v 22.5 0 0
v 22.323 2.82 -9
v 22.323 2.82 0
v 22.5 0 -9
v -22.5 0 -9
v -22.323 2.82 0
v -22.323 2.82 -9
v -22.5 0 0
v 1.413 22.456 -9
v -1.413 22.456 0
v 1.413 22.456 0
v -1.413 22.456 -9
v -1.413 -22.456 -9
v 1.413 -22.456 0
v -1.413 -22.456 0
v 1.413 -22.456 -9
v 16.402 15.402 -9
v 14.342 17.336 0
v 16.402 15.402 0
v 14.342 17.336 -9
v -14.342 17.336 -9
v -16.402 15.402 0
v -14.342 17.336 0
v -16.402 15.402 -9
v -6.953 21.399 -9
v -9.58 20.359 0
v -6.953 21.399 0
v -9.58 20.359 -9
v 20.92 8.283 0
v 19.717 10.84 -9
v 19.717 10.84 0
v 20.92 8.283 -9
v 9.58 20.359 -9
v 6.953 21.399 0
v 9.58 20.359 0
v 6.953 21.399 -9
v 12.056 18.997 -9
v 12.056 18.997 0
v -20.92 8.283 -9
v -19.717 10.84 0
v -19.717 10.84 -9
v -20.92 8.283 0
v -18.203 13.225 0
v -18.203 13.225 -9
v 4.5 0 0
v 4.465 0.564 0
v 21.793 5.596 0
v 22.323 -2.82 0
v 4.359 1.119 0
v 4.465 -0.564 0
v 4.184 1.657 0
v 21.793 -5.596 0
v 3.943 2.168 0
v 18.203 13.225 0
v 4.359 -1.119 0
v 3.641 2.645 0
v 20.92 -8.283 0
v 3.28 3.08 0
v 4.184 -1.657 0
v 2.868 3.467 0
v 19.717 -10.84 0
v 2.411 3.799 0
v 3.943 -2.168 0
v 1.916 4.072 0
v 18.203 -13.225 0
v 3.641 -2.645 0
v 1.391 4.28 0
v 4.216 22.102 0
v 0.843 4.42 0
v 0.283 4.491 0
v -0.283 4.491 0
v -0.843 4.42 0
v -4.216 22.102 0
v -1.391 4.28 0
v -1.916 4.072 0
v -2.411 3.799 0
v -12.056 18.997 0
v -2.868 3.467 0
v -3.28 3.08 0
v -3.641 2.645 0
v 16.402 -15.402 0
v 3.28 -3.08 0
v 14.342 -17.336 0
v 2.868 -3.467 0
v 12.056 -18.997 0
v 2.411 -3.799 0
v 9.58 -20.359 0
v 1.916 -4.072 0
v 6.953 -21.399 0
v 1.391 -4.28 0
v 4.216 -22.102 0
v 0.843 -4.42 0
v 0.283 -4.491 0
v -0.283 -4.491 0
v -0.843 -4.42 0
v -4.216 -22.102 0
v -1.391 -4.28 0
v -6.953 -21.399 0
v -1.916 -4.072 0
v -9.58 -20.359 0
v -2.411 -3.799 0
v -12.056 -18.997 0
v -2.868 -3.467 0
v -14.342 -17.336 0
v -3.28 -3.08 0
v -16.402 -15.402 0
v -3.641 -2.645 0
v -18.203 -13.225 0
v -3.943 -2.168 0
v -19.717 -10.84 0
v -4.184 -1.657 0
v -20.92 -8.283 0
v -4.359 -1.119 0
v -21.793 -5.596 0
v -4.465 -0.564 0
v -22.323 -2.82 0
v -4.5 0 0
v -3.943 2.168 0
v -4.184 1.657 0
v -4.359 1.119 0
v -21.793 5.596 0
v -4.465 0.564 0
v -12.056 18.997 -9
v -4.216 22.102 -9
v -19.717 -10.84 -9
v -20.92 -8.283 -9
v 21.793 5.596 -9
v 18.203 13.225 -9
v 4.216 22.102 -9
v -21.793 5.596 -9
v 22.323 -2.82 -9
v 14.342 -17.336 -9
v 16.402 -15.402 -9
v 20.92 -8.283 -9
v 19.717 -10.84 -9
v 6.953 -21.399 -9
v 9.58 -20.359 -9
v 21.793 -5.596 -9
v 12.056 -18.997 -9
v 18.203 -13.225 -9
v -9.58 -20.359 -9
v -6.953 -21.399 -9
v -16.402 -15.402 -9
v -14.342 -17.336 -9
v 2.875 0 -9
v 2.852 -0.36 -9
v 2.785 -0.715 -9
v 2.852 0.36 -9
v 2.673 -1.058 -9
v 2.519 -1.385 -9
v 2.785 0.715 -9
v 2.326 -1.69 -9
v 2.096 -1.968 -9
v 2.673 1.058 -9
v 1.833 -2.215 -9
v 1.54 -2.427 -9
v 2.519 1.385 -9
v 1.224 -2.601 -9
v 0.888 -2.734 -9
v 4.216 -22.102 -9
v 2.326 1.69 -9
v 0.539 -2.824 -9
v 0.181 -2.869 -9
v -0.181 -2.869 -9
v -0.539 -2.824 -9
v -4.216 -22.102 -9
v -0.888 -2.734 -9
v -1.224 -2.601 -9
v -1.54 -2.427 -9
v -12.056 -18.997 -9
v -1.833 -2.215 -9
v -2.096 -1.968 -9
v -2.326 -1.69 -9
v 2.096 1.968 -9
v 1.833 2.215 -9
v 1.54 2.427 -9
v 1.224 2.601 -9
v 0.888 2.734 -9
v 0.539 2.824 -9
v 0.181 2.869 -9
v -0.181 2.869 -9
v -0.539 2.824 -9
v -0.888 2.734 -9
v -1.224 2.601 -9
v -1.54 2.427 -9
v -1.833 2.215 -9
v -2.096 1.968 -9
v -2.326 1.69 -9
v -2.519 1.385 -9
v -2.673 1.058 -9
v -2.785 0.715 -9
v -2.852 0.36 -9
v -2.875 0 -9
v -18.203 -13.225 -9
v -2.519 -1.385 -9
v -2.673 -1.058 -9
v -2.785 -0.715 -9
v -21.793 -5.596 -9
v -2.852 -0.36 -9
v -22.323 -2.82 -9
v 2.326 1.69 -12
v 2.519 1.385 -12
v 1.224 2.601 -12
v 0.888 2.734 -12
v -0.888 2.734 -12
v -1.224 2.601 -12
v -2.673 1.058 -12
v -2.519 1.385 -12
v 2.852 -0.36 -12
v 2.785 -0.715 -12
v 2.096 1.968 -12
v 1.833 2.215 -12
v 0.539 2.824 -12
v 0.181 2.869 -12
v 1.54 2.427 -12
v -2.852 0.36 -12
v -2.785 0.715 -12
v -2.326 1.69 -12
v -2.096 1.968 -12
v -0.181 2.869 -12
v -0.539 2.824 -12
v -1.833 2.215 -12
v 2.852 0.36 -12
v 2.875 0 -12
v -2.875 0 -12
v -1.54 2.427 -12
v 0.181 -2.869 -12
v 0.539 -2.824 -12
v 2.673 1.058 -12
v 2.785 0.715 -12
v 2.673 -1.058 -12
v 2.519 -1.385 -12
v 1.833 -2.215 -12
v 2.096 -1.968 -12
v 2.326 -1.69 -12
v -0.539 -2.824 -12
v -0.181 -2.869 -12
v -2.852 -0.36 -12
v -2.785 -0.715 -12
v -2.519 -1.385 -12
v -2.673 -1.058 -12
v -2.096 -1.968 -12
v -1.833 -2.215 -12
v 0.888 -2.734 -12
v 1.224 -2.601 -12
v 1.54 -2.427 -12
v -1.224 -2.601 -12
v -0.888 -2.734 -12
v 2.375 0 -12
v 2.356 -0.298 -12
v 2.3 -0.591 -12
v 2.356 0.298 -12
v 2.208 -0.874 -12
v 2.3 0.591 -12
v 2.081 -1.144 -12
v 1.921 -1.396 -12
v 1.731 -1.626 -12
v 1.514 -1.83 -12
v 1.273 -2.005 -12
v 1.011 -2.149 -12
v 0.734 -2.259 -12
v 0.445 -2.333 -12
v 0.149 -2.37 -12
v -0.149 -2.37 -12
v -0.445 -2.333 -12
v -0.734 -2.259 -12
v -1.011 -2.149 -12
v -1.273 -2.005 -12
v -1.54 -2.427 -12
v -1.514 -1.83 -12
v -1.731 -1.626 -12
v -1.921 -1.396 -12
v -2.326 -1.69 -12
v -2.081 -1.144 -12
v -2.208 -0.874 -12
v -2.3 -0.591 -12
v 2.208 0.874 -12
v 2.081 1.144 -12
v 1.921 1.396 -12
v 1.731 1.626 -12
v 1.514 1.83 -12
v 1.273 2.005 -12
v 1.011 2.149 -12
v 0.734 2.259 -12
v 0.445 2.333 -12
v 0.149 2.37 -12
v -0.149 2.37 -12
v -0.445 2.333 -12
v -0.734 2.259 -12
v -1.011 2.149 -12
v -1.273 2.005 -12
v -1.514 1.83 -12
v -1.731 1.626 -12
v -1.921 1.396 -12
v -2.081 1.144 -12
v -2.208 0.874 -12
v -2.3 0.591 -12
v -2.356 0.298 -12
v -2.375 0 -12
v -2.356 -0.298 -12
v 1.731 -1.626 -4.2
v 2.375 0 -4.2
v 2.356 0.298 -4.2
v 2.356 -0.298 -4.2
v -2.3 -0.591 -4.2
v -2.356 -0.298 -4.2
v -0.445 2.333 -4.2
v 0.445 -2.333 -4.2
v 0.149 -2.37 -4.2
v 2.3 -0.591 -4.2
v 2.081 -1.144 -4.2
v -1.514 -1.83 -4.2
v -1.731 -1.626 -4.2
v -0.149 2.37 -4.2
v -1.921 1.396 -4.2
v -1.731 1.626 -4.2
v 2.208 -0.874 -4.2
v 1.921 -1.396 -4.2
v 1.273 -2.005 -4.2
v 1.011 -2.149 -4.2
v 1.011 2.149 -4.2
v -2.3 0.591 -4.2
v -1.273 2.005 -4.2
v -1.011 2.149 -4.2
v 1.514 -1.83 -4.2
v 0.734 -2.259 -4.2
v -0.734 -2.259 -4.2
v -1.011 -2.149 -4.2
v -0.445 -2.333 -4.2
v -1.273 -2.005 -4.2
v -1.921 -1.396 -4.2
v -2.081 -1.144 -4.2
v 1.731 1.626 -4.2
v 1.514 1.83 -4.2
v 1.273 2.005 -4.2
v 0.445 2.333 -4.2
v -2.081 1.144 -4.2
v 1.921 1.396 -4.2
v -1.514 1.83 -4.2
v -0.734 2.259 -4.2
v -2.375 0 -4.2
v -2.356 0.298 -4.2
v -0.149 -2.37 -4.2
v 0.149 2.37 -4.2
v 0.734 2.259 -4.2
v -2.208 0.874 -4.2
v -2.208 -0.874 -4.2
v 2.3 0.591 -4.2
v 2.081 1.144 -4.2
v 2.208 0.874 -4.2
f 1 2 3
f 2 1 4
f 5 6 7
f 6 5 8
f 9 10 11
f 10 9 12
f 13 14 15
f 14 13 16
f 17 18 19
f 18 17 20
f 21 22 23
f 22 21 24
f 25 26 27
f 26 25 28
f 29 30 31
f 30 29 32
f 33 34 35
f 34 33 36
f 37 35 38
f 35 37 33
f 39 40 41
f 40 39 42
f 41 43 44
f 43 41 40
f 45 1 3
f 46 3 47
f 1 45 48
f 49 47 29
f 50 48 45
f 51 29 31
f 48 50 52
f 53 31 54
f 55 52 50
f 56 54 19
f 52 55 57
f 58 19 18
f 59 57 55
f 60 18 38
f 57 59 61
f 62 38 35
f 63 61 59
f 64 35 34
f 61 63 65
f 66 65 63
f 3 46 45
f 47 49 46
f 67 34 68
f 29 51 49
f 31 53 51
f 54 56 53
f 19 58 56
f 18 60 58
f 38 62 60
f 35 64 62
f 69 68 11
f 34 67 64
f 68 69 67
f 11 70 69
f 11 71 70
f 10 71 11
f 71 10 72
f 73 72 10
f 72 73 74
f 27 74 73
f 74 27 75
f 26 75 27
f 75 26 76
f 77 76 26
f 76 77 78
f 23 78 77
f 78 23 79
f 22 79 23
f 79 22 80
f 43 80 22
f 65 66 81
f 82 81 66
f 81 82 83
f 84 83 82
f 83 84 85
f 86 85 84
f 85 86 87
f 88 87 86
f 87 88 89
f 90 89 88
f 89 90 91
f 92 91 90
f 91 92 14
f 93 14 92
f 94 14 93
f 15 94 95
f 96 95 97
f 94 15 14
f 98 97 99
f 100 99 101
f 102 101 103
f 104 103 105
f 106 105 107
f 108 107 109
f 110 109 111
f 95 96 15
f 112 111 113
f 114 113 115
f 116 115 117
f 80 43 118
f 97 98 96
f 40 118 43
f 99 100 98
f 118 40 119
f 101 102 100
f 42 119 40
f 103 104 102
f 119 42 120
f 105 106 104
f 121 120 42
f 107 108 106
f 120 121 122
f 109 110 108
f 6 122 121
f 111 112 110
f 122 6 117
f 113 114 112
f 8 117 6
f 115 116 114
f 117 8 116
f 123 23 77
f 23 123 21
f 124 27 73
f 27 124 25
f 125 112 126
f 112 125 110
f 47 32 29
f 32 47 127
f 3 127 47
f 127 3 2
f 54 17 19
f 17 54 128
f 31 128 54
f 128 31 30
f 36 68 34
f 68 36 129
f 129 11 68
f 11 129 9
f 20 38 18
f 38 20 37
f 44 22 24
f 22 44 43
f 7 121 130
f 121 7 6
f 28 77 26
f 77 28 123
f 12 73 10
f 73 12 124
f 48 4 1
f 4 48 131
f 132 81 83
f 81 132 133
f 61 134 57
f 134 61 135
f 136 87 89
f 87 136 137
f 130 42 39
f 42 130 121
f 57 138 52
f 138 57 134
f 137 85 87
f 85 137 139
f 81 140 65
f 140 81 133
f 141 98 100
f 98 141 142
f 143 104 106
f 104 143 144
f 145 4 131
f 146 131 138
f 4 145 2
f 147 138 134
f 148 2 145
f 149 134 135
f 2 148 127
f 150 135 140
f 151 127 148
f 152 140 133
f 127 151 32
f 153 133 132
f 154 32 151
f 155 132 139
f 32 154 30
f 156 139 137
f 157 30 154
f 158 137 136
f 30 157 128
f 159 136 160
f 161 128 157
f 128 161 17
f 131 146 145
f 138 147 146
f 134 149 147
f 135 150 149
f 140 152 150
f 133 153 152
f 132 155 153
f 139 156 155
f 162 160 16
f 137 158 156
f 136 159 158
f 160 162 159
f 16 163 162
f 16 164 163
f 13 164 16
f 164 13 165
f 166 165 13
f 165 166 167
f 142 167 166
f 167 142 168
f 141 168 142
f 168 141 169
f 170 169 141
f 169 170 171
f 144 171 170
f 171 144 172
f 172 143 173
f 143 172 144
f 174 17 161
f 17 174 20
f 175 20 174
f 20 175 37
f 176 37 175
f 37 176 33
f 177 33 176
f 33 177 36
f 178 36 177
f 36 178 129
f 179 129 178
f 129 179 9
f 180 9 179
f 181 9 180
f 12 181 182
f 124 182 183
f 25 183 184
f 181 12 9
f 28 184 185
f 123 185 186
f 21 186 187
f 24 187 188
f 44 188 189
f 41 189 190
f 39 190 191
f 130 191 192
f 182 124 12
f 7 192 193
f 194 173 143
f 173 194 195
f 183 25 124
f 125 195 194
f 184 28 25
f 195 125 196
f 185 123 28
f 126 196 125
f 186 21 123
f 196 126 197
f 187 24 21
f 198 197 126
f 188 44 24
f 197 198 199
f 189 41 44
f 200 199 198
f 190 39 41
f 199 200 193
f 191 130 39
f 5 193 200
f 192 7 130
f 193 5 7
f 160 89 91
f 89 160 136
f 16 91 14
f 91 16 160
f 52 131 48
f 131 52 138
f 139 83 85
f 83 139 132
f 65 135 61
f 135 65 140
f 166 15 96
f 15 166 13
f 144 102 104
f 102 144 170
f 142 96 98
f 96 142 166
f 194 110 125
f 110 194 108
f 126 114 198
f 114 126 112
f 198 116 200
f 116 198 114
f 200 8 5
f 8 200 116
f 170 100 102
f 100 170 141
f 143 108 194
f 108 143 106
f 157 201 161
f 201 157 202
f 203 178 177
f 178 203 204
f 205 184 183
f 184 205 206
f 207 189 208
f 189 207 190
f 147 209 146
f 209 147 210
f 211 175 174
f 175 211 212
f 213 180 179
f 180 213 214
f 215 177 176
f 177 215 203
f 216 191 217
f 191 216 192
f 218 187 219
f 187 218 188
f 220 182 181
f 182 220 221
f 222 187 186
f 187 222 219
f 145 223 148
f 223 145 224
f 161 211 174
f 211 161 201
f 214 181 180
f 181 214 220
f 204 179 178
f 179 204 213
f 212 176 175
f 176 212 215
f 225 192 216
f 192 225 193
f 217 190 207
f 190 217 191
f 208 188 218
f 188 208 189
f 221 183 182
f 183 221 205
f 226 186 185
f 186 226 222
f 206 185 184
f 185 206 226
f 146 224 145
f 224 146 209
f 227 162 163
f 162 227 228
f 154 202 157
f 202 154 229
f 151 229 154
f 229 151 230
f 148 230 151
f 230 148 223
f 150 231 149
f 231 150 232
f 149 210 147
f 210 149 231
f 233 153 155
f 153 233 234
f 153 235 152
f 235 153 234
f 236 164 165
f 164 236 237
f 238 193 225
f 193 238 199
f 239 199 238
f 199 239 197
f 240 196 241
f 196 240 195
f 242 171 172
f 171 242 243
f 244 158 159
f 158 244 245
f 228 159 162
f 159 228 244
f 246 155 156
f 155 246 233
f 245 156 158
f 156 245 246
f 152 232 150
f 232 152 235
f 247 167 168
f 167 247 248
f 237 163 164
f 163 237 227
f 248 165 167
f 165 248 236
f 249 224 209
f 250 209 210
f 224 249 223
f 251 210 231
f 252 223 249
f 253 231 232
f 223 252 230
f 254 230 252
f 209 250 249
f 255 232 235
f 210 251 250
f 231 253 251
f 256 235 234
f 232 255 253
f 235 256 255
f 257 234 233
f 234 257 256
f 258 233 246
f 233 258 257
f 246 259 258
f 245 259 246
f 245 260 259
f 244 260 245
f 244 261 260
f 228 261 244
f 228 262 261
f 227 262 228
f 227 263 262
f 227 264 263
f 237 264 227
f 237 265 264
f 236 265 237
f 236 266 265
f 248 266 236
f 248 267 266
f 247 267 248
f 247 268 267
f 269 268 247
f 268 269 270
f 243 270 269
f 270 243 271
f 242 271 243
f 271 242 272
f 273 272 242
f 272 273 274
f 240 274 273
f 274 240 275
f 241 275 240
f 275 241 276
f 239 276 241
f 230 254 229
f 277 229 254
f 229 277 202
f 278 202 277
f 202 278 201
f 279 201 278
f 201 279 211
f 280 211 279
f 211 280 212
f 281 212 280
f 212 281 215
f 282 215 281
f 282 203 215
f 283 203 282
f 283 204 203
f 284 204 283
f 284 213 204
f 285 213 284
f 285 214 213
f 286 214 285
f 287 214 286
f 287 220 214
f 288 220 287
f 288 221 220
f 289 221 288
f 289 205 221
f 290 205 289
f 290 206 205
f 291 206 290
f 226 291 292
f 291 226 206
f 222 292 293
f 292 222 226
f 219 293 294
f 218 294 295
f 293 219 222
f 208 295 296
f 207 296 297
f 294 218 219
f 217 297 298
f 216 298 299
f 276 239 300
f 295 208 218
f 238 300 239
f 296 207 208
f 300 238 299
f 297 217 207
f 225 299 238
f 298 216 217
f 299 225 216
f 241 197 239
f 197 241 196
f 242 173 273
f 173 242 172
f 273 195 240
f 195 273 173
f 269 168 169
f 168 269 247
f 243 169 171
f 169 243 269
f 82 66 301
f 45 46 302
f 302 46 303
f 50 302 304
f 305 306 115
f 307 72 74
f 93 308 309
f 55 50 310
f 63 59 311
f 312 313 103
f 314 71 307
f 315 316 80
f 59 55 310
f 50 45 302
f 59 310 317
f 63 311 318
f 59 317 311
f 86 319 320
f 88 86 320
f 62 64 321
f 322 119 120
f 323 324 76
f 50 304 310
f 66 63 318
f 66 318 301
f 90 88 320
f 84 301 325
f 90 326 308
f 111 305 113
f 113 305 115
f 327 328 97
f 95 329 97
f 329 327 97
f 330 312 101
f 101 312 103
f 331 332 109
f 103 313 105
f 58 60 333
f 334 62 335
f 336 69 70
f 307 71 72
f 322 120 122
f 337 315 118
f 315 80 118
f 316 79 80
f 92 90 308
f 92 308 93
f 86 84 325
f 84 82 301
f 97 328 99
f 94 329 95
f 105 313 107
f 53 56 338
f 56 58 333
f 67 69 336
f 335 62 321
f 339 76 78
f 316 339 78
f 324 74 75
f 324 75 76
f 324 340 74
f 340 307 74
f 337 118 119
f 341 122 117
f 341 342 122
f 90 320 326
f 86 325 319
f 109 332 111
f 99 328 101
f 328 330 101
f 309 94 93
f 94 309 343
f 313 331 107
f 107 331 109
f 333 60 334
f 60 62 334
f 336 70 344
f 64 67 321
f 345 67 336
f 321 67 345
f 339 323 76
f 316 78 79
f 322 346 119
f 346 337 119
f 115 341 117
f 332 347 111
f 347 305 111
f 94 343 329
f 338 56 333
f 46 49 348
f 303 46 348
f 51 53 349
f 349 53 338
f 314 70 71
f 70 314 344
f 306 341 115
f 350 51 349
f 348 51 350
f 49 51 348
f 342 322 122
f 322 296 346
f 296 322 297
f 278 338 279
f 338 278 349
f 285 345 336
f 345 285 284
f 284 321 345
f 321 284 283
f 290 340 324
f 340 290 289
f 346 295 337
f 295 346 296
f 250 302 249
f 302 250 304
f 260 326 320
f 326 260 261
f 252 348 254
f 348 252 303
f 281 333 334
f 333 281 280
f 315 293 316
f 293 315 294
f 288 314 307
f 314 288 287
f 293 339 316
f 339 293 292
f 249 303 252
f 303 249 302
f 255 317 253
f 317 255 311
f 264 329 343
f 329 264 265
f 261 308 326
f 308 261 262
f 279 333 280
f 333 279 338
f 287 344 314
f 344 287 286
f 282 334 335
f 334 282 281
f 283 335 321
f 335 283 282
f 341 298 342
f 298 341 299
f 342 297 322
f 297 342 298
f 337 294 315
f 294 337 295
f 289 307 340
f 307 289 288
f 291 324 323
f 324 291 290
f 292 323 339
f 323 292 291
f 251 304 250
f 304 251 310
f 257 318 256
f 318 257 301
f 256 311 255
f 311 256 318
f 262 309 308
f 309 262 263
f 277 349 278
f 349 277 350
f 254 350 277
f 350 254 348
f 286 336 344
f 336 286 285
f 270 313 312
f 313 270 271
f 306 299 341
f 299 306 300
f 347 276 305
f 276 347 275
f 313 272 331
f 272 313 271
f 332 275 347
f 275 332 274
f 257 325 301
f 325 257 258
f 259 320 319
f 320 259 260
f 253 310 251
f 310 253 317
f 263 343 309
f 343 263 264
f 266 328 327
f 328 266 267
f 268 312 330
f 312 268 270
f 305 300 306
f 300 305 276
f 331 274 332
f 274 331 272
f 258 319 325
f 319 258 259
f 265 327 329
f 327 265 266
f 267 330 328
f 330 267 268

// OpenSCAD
$fn = 50;


difference() {
	union() {
		translate(v = [0, 0, -9.0000000000]) {
			cylinder(h = 9, r = 22.5000000000);
		}
		translate(v = [0, 0, -12.0000000000]) {
			cylinder(h = 12, r = 2.8750000000);
		}
	}
	union() {
		translate(v = [0, 0, 0]) {
			rotate(a = [0, 0, 0]) {
				difference() {
					union() {
						translate(v = [0, 0, -12.0000000000]) {
							cylinder(h = 12, r = 2.2500000000);
						}
						translate(v = [0, 0, -4.2000000000]) {
							cylinder(h = 4.2000000000, r1 = 2.3750000000, r2 = 4.5000000000);
						}
						translate(v = [0, 0, -12.0000000000]) {
							cylinder(h = 12, r = 2.3750000000);
						}
						translate(v = [0, 0, -12.0000000000]) {
							cylinder(h = 12, r = 2.2500000000);
						}
					}
					union();
				}
			}
		}
	}
}
